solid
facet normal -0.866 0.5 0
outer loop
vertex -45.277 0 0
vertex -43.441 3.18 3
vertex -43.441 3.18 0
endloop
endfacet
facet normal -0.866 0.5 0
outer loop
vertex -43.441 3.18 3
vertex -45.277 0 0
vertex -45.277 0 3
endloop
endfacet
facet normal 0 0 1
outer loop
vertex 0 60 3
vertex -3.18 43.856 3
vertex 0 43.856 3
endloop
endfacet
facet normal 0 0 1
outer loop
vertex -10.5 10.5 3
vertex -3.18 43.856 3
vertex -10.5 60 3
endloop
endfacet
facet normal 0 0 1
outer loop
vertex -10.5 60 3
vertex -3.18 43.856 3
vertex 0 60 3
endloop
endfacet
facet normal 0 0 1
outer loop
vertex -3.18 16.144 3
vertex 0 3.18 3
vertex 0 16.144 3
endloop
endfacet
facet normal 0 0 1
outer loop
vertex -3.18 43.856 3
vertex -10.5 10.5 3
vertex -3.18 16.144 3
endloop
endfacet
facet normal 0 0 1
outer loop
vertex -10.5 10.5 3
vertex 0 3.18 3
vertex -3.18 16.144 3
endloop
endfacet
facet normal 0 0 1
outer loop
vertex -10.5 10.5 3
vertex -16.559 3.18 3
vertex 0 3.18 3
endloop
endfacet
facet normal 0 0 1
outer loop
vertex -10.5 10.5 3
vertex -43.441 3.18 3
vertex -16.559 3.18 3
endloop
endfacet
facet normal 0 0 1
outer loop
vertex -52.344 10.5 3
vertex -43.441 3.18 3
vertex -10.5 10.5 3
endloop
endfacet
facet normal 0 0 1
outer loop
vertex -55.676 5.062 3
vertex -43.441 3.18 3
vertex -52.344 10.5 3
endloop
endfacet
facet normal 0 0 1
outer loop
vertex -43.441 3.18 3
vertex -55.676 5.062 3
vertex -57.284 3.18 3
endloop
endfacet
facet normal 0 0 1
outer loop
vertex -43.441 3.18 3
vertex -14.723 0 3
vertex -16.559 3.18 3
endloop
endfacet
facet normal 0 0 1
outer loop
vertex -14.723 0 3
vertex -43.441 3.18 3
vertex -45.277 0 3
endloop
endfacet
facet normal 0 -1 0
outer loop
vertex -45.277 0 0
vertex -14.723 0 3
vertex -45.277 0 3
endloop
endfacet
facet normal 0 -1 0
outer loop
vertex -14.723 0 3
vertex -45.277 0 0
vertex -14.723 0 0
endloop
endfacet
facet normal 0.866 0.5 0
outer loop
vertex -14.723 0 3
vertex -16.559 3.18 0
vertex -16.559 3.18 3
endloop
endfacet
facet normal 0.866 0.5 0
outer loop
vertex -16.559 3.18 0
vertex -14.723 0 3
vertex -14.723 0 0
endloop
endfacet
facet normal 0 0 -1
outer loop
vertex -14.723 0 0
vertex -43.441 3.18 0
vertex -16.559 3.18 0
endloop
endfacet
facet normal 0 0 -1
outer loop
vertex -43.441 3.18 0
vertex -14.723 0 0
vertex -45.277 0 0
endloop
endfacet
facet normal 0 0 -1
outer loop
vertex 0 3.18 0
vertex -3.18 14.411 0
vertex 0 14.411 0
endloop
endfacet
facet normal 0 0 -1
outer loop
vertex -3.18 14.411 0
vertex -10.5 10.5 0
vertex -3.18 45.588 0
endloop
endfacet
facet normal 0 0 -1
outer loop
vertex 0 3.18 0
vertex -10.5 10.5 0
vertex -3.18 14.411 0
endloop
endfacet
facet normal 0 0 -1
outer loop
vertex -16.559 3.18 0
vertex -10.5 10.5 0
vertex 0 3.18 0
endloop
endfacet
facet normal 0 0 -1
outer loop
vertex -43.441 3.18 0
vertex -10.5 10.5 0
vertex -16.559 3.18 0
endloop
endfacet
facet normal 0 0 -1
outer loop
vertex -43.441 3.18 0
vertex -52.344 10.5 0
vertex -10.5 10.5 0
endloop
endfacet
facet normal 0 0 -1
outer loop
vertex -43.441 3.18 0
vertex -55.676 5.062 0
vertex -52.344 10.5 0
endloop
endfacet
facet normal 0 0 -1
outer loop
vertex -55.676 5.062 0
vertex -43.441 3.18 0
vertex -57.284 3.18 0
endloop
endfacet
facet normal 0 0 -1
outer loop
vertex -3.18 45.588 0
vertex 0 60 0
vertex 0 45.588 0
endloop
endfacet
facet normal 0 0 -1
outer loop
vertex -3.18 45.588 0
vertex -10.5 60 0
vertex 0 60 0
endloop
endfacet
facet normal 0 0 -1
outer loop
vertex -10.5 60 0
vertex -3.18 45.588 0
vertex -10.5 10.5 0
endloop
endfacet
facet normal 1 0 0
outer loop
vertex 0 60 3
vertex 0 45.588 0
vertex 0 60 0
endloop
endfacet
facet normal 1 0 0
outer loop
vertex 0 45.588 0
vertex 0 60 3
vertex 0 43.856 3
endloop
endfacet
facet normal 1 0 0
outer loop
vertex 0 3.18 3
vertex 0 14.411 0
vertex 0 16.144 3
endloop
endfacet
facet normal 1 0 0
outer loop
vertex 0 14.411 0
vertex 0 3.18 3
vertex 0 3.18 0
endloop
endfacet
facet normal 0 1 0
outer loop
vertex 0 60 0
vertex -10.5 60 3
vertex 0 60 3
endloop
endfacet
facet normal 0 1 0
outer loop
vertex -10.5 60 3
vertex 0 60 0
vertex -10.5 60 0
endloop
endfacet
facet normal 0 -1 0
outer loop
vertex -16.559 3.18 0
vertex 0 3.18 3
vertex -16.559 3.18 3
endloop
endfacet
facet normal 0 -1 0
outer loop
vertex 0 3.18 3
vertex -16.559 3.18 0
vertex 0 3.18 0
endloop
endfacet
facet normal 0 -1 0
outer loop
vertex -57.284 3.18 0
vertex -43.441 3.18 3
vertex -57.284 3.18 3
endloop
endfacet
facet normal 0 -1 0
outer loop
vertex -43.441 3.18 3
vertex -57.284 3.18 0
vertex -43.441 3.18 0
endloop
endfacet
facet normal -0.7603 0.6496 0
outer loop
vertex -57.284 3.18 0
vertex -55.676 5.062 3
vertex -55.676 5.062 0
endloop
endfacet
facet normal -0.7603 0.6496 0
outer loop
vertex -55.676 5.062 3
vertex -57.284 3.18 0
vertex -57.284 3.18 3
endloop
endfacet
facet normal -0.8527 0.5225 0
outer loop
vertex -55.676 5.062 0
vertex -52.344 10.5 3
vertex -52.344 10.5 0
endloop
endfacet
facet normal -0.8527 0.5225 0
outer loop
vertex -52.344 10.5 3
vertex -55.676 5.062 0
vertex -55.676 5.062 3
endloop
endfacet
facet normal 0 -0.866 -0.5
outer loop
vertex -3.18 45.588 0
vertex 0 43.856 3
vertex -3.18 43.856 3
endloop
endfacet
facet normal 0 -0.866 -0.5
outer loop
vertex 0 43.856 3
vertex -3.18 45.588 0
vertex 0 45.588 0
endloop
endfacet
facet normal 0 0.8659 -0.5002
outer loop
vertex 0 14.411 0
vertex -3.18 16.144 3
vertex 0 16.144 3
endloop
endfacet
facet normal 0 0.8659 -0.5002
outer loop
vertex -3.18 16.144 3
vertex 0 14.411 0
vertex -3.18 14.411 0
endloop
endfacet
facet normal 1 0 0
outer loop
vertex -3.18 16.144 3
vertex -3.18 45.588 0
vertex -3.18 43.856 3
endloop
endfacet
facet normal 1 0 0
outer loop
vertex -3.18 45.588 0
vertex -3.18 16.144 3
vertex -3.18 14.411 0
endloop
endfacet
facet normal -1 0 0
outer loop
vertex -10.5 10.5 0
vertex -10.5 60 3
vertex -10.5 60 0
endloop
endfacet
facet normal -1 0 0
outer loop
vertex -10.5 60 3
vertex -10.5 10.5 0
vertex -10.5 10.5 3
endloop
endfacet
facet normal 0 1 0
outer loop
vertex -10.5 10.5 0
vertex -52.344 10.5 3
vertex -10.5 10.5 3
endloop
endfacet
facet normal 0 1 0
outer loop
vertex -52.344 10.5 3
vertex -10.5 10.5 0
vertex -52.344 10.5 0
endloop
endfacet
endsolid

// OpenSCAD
thick=0.05;
$fn=40;
R=sqrt(2)/2;
gap=0.003;

module hooks(){
    for(i=[-33:9:39])
        difference(){
            intersection(){
                hull(){
                    rotate([0,0,i])
                        translate([R,0,0])
                            scale([thick*2, thick/2, thick*2])
                                sphere(1);
                    translate([0.5,0,0.5])
                        sphere(thick/2);
                }
               cylinder(r=1, h=1);
            }
            rotate([0,0,i])
                translate([R+thick/2,0,0])
                    rotate([90,0,0])
                        cylinder(r=thick/2, center=true);
            }
}

//hooks();

module hook2(){
    difference(){
        intersection(){
            translate([R,0,-thick/4])
                scale([thick*2, thick/2, thick*2])
                    sphere(1);
            cylinder(r=1, h=1);
        }
        translate([R,0,0])
            rotate([90,0,0])
                cylinder(r=thick, center=true);
    }
}

module hooks2(){
    for(i=[-32:8.5:40])
        rotate([0,0,i])
            hook2();
}


module dovetail_m(){
    translate([0.5, 0.3/2-gap, 0])
    rotate([0,0,90])
    cylinder(r=0.3-gap*2, h=thick, $fn=3);
}

module dovetail_f(){
    translate([1, 0.5, 0.3/2])
    rotate([0,-90,0])
    cylinder(r=0.3, h=thick+gap, $fn=3);
}


module panelA(){
    translate([-1,0,0]){
        difference(){
            union(){
                dovetail_m();
                translate([0,thick+gap,0])
                    cube([1,1-thick-gap,thick]);
            }
            translate([-0.5, 0.5, 0]){
                cylinder(h=thick, r=R);
            }
            dovetail_f();
            // square hole
            translate([-0.15-thick/2, 0.15+thick/2, 0])
                cube([1, 1, 1]);
        }
/*        intersection(){
            translate([-0.50, 0.5, 0])
                hooks2();
            cube([1.2,1,thick*2]);
        }*/
    }
}


module panelB(){
}


module pins(){
    for(i=[-33:9:39])
        rotate([0,0,i])
            translate([R,0,0])
                scale([thick*2,
                       thick/2,
                       thick])
                    sphere(1);
}


module panels(){
    panelA();
rotate([0,90,90])
    panelB();
}

scale(60){
panels();
}
/*
rotate([0,90,90])
panels();
rotate([0,90,90])
rotate([0,90,90])
panels();
}
*/
